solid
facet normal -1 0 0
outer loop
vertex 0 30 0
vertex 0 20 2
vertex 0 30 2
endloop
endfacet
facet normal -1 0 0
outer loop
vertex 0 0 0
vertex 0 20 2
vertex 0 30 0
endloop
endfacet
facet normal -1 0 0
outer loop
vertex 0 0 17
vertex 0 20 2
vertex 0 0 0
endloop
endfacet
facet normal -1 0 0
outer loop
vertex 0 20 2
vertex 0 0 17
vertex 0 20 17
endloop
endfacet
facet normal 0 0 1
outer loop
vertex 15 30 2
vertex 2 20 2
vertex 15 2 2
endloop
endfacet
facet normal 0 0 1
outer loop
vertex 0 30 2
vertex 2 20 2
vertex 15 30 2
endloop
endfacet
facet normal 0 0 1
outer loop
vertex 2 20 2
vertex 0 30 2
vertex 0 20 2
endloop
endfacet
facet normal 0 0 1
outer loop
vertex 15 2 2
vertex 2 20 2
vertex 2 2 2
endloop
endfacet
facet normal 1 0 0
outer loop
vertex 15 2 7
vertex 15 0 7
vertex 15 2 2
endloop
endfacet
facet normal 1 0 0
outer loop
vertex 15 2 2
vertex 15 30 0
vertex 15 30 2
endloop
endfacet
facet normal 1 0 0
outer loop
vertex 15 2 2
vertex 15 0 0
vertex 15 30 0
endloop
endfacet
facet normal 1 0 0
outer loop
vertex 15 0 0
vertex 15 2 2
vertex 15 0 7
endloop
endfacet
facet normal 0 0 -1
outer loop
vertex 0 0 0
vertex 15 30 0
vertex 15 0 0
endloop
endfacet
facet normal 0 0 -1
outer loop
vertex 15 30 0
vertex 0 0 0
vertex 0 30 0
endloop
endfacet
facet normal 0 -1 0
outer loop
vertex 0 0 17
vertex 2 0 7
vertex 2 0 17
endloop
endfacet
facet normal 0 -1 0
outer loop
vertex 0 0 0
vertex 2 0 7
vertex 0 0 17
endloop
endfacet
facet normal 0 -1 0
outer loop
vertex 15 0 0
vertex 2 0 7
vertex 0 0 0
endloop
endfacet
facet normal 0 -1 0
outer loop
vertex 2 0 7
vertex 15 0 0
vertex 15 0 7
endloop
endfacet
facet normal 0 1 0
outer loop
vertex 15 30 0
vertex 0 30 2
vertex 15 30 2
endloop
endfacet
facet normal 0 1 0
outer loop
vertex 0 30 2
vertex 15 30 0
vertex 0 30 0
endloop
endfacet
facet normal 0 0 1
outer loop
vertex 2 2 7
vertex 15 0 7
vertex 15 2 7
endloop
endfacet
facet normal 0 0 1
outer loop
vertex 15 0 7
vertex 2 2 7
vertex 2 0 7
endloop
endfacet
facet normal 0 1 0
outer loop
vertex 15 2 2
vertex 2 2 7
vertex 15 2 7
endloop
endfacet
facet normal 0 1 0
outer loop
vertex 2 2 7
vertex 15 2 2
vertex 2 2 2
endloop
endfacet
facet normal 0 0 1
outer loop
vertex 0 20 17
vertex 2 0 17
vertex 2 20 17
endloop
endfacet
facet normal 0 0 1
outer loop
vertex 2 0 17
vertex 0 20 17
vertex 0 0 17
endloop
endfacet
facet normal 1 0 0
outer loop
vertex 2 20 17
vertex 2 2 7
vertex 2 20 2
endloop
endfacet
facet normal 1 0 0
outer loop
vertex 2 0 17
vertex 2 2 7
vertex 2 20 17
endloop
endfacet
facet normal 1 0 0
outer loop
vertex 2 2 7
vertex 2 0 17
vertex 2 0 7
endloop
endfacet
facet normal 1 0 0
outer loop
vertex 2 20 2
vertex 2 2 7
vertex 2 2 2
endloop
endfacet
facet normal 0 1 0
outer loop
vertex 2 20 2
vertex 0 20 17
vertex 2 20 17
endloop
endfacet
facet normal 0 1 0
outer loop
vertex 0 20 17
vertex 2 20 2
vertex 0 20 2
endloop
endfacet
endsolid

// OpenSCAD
cube([15,30,2]);
translate([0,0,2]){
    cube([15,2,5]);
}

translate([0,0,2]){
    cube([2,20,15]);
}
